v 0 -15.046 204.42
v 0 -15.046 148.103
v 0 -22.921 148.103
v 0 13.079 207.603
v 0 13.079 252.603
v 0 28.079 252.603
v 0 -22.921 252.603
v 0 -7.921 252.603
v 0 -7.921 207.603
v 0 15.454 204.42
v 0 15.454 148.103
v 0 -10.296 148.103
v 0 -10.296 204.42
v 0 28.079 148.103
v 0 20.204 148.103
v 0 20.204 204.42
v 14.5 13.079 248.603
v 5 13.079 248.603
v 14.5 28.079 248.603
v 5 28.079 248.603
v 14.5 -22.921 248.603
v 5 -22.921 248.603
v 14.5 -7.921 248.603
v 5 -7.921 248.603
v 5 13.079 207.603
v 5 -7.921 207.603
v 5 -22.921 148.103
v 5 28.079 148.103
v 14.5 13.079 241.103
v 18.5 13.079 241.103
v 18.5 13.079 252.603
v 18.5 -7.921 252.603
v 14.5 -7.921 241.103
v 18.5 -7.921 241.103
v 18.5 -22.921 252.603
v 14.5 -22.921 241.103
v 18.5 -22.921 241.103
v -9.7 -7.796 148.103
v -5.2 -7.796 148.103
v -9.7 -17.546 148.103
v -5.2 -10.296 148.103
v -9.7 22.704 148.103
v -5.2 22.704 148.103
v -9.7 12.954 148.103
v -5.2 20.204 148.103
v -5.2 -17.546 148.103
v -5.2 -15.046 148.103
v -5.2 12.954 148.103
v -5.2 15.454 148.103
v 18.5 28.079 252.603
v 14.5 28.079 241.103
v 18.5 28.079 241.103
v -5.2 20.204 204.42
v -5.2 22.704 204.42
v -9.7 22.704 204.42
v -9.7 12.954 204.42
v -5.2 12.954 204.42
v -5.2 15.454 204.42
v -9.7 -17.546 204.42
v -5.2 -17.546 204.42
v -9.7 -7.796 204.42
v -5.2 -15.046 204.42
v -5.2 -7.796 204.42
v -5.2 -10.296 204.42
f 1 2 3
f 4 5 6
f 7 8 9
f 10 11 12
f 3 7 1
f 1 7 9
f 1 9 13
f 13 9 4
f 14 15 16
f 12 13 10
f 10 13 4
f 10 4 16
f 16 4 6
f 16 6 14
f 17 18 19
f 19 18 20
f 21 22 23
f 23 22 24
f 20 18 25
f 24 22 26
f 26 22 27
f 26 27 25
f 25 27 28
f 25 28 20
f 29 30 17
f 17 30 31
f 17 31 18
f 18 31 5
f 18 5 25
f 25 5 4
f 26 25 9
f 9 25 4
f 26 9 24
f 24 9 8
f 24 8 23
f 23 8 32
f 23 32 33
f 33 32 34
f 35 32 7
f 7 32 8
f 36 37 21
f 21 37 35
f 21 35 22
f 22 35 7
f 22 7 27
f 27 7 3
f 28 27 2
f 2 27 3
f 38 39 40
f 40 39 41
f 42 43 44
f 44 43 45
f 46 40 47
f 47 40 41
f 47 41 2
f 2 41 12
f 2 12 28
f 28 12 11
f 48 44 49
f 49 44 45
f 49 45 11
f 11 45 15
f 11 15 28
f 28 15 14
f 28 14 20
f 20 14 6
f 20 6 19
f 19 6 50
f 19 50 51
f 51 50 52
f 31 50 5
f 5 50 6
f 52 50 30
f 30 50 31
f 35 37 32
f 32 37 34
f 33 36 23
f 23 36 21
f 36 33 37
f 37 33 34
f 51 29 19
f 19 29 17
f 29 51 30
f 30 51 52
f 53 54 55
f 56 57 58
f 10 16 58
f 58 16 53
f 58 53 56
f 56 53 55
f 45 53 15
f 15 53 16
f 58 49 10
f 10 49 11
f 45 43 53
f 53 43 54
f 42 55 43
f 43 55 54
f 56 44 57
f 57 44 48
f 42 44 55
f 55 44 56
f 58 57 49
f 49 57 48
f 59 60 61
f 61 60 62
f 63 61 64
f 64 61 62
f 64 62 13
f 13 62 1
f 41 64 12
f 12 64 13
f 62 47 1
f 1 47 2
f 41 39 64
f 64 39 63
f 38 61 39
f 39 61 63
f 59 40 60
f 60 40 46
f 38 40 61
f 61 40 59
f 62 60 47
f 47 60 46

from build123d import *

# Parameters (mm, degrees)
BOSS_EXTRUDE1_DEPTH = 5
SKETCH5_W           = 4
SKETCH5_H           = 15
BOSS_EXTRUDE2_DEPTH = 13.5
SKETCH6_W           = 4
SKETCH6_H           = 15
BOSS_EXTRUDE3_DEPTH = 7.5
SKETCH7_W           = 56.316926488
SKETCH7_H           = 4.75
BOSS_EXTRUDE4_DEPTH = 5.2
SKETCH8_W           = 56.316926488
SKETCH8_H           = 9.75
BOSS_EXTRUDE5_DEPTH = 4.5


with BuildPart() as part:
    # Sketch4 → Boss-Extrude1 (new body)
    with BuildSketch(Plane(origin=(0, 0, 0), x_dir=(0, 0, -1), z_dir=(1, 0, 0))):
        Polygon((-207.602722557, -7.920601616), (-252.602722557, -7.920601616), (-252.602722557, -22.920601616), (-148.102722557, -22.920601616), (-148.102722557, 28.079398384), (-252.602722557, 28.079398384), (-252.602722557, 13.079398384), (-207.602722557, 13.079398384), align=None)
    extrude(amount=BOSS_EXTRUDE1_DEPTH)

    # Sketch5 → Boss-Extrude2 (add)
    with BuildSketch(Plane(origin=(5, 0, 0), x_dir=(0, 0, -1), z_dir=(1, 0, 0))):
        with Locations((-250.602722557, 20.579398384)):
            Rectangle(SKETCH5_W, SKETCH5_H)
        with Locations((-250.602722557, -15.420601616)):
            Rectangle(SKETCH5_W, SKETCH5_H)
    extrude(amount=BOSS_EXTRUDE2_DEPTH)

    # Sketch6 → Boss-Extrude3 (add)
    with BuildSketch(Plane(origin=(0, 0, 248.602722557), x_dir=(-1, 0, 0), z_dir=(0, 0, -1))):
        with Locations((-16.5, -15.420601616)):
            Rectangle(SKETCH6_W, SKETCH6_H)
        with Locations((-16.5, 20.579398384)):
            Rectangle(SKETCH6_W, SKETCH6_H)
    extrude(amount=BOSS_EXTRUDE3_DEPTH)

    # Sketch7 → Boss-Extrude4 (add)
    with BuildSketch(Plane.ZY):
        with Locations((176.261185801, 17.829398384)):
            Rectangle(SKETCH7_W, SKETCH7_H)
    boss_extrude4 = extrude(amount=BOSS_EXTRUDE4_DEPTH)

    # Sketch8 → Boss-Extrude5 (add)
    with BuildSketch(Plane.ZY.offset(5.2)):
        with Locations((176.261185801, 17.829398384)):
            Rectangle(SKETCH8_W, SKETCH8_H)
    boss_extrude5 = extrude(amount=BOSS_EXTRUDE5_DEPTH)

    # Mirror1: Boss-Extrude4, Boss-Extrude5 across plane
    add(boss_extrude4.mirror(Plane(origin=(0, 2.579398384, 0), x_dir=(0, 0, 1), z_dir=(0, -1, 0))))
    add(boss_extrude5.mirror(Plane(origin=(0, 2.579398384, 0), x_dir=(0, 0, 1), z_dir=(0, -1, 0))))


solid = part.part
